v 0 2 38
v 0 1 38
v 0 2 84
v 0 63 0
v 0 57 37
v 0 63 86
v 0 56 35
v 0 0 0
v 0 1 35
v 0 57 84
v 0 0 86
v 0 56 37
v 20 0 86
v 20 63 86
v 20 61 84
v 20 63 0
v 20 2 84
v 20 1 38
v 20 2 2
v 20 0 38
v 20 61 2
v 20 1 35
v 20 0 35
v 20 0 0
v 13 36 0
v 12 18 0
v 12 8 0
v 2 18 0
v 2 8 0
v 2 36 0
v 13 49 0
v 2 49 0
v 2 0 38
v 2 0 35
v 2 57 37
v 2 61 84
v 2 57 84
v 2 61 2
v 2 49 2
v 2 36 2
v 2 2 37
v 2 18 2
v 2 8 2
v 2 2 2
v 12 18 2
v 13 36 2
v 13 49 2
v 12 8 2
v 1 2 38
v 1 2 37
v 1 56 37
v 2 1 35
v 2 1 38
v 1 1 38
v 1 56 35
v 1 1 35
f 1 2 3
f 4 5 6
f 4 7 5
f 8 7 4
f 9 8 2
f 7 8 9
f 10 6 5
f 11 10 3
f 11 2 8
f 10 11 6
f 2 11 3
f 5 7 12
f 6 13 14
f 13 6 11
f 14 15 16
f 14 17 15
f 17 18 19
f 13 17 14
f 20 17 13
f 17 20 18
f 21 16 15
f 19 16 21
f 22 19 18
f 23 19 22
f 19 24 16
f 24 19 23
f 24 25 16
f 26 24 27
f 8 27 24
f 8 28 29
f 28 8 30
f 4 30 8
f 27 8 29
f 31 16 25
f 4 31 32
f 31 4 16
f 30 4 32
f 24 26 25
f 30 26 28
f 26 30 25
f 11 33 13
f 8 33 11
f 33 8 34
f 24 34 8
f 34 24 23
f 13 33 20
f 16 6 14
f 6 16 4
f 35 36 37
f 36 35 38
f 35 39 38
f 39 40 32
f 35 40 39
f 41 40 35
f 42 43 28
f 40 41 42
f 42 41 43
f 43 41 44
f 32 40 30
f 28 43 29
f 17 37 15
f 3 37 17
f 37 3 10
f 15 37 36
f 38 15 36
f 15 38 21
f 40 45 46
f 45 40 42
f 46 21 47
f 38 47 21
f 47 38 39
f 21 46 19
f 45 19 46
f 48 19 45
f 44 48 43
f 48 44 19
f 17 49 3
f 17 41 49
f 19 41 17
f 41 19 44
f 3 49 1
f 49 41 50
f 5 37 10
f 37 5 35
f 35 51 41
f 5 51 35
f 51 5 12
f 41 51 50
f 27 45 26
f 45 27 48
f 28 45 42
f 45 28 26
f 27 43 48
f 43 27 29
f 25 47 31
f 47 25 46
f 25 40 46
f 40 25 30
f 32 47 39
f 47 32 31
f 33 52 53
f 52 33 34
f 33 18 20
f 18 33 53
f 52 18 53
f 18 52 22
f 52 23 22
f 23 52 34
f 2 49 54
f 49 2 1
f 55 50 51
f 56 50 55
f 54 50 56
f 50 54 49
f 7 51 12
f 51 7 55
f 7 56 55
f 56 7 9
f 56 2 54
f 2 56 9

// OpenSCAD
difference() {
    cube([20, 63, 86]);
    
    // Aushöhlen des Hauptkörpers
    translate([2, 2, 2]) {
        cube([19, 59, 82]);
    }
    translate([-28, 2, 37]) {
        cube([31, 55, 47]);
    }
    
    // Aussparung für Batterie
    translate([2, 8, -2]) { 
        cube([10, 10, 6]);
    }  
    
    // Aussparung für USB-Anschluss
    translate([2, 36, -2]) { 
        cube([11, 13, 6]);
    } 
    
    // Anbindungslinie für Batteriefach
    //translate([-1, 2, 5]) {
    //    cube([2, 44, 2]);
    //}
    
    // Anbindungslinie für Kabelkanal
    translate([2, -1, 35]) {
        cube([18, 2, 3]);
    }
    
    // Anbindungslinie für Kabelspeicher
    translate([-1, 1, 35]) {
        cube([2, 55, 3]);
    }
}
